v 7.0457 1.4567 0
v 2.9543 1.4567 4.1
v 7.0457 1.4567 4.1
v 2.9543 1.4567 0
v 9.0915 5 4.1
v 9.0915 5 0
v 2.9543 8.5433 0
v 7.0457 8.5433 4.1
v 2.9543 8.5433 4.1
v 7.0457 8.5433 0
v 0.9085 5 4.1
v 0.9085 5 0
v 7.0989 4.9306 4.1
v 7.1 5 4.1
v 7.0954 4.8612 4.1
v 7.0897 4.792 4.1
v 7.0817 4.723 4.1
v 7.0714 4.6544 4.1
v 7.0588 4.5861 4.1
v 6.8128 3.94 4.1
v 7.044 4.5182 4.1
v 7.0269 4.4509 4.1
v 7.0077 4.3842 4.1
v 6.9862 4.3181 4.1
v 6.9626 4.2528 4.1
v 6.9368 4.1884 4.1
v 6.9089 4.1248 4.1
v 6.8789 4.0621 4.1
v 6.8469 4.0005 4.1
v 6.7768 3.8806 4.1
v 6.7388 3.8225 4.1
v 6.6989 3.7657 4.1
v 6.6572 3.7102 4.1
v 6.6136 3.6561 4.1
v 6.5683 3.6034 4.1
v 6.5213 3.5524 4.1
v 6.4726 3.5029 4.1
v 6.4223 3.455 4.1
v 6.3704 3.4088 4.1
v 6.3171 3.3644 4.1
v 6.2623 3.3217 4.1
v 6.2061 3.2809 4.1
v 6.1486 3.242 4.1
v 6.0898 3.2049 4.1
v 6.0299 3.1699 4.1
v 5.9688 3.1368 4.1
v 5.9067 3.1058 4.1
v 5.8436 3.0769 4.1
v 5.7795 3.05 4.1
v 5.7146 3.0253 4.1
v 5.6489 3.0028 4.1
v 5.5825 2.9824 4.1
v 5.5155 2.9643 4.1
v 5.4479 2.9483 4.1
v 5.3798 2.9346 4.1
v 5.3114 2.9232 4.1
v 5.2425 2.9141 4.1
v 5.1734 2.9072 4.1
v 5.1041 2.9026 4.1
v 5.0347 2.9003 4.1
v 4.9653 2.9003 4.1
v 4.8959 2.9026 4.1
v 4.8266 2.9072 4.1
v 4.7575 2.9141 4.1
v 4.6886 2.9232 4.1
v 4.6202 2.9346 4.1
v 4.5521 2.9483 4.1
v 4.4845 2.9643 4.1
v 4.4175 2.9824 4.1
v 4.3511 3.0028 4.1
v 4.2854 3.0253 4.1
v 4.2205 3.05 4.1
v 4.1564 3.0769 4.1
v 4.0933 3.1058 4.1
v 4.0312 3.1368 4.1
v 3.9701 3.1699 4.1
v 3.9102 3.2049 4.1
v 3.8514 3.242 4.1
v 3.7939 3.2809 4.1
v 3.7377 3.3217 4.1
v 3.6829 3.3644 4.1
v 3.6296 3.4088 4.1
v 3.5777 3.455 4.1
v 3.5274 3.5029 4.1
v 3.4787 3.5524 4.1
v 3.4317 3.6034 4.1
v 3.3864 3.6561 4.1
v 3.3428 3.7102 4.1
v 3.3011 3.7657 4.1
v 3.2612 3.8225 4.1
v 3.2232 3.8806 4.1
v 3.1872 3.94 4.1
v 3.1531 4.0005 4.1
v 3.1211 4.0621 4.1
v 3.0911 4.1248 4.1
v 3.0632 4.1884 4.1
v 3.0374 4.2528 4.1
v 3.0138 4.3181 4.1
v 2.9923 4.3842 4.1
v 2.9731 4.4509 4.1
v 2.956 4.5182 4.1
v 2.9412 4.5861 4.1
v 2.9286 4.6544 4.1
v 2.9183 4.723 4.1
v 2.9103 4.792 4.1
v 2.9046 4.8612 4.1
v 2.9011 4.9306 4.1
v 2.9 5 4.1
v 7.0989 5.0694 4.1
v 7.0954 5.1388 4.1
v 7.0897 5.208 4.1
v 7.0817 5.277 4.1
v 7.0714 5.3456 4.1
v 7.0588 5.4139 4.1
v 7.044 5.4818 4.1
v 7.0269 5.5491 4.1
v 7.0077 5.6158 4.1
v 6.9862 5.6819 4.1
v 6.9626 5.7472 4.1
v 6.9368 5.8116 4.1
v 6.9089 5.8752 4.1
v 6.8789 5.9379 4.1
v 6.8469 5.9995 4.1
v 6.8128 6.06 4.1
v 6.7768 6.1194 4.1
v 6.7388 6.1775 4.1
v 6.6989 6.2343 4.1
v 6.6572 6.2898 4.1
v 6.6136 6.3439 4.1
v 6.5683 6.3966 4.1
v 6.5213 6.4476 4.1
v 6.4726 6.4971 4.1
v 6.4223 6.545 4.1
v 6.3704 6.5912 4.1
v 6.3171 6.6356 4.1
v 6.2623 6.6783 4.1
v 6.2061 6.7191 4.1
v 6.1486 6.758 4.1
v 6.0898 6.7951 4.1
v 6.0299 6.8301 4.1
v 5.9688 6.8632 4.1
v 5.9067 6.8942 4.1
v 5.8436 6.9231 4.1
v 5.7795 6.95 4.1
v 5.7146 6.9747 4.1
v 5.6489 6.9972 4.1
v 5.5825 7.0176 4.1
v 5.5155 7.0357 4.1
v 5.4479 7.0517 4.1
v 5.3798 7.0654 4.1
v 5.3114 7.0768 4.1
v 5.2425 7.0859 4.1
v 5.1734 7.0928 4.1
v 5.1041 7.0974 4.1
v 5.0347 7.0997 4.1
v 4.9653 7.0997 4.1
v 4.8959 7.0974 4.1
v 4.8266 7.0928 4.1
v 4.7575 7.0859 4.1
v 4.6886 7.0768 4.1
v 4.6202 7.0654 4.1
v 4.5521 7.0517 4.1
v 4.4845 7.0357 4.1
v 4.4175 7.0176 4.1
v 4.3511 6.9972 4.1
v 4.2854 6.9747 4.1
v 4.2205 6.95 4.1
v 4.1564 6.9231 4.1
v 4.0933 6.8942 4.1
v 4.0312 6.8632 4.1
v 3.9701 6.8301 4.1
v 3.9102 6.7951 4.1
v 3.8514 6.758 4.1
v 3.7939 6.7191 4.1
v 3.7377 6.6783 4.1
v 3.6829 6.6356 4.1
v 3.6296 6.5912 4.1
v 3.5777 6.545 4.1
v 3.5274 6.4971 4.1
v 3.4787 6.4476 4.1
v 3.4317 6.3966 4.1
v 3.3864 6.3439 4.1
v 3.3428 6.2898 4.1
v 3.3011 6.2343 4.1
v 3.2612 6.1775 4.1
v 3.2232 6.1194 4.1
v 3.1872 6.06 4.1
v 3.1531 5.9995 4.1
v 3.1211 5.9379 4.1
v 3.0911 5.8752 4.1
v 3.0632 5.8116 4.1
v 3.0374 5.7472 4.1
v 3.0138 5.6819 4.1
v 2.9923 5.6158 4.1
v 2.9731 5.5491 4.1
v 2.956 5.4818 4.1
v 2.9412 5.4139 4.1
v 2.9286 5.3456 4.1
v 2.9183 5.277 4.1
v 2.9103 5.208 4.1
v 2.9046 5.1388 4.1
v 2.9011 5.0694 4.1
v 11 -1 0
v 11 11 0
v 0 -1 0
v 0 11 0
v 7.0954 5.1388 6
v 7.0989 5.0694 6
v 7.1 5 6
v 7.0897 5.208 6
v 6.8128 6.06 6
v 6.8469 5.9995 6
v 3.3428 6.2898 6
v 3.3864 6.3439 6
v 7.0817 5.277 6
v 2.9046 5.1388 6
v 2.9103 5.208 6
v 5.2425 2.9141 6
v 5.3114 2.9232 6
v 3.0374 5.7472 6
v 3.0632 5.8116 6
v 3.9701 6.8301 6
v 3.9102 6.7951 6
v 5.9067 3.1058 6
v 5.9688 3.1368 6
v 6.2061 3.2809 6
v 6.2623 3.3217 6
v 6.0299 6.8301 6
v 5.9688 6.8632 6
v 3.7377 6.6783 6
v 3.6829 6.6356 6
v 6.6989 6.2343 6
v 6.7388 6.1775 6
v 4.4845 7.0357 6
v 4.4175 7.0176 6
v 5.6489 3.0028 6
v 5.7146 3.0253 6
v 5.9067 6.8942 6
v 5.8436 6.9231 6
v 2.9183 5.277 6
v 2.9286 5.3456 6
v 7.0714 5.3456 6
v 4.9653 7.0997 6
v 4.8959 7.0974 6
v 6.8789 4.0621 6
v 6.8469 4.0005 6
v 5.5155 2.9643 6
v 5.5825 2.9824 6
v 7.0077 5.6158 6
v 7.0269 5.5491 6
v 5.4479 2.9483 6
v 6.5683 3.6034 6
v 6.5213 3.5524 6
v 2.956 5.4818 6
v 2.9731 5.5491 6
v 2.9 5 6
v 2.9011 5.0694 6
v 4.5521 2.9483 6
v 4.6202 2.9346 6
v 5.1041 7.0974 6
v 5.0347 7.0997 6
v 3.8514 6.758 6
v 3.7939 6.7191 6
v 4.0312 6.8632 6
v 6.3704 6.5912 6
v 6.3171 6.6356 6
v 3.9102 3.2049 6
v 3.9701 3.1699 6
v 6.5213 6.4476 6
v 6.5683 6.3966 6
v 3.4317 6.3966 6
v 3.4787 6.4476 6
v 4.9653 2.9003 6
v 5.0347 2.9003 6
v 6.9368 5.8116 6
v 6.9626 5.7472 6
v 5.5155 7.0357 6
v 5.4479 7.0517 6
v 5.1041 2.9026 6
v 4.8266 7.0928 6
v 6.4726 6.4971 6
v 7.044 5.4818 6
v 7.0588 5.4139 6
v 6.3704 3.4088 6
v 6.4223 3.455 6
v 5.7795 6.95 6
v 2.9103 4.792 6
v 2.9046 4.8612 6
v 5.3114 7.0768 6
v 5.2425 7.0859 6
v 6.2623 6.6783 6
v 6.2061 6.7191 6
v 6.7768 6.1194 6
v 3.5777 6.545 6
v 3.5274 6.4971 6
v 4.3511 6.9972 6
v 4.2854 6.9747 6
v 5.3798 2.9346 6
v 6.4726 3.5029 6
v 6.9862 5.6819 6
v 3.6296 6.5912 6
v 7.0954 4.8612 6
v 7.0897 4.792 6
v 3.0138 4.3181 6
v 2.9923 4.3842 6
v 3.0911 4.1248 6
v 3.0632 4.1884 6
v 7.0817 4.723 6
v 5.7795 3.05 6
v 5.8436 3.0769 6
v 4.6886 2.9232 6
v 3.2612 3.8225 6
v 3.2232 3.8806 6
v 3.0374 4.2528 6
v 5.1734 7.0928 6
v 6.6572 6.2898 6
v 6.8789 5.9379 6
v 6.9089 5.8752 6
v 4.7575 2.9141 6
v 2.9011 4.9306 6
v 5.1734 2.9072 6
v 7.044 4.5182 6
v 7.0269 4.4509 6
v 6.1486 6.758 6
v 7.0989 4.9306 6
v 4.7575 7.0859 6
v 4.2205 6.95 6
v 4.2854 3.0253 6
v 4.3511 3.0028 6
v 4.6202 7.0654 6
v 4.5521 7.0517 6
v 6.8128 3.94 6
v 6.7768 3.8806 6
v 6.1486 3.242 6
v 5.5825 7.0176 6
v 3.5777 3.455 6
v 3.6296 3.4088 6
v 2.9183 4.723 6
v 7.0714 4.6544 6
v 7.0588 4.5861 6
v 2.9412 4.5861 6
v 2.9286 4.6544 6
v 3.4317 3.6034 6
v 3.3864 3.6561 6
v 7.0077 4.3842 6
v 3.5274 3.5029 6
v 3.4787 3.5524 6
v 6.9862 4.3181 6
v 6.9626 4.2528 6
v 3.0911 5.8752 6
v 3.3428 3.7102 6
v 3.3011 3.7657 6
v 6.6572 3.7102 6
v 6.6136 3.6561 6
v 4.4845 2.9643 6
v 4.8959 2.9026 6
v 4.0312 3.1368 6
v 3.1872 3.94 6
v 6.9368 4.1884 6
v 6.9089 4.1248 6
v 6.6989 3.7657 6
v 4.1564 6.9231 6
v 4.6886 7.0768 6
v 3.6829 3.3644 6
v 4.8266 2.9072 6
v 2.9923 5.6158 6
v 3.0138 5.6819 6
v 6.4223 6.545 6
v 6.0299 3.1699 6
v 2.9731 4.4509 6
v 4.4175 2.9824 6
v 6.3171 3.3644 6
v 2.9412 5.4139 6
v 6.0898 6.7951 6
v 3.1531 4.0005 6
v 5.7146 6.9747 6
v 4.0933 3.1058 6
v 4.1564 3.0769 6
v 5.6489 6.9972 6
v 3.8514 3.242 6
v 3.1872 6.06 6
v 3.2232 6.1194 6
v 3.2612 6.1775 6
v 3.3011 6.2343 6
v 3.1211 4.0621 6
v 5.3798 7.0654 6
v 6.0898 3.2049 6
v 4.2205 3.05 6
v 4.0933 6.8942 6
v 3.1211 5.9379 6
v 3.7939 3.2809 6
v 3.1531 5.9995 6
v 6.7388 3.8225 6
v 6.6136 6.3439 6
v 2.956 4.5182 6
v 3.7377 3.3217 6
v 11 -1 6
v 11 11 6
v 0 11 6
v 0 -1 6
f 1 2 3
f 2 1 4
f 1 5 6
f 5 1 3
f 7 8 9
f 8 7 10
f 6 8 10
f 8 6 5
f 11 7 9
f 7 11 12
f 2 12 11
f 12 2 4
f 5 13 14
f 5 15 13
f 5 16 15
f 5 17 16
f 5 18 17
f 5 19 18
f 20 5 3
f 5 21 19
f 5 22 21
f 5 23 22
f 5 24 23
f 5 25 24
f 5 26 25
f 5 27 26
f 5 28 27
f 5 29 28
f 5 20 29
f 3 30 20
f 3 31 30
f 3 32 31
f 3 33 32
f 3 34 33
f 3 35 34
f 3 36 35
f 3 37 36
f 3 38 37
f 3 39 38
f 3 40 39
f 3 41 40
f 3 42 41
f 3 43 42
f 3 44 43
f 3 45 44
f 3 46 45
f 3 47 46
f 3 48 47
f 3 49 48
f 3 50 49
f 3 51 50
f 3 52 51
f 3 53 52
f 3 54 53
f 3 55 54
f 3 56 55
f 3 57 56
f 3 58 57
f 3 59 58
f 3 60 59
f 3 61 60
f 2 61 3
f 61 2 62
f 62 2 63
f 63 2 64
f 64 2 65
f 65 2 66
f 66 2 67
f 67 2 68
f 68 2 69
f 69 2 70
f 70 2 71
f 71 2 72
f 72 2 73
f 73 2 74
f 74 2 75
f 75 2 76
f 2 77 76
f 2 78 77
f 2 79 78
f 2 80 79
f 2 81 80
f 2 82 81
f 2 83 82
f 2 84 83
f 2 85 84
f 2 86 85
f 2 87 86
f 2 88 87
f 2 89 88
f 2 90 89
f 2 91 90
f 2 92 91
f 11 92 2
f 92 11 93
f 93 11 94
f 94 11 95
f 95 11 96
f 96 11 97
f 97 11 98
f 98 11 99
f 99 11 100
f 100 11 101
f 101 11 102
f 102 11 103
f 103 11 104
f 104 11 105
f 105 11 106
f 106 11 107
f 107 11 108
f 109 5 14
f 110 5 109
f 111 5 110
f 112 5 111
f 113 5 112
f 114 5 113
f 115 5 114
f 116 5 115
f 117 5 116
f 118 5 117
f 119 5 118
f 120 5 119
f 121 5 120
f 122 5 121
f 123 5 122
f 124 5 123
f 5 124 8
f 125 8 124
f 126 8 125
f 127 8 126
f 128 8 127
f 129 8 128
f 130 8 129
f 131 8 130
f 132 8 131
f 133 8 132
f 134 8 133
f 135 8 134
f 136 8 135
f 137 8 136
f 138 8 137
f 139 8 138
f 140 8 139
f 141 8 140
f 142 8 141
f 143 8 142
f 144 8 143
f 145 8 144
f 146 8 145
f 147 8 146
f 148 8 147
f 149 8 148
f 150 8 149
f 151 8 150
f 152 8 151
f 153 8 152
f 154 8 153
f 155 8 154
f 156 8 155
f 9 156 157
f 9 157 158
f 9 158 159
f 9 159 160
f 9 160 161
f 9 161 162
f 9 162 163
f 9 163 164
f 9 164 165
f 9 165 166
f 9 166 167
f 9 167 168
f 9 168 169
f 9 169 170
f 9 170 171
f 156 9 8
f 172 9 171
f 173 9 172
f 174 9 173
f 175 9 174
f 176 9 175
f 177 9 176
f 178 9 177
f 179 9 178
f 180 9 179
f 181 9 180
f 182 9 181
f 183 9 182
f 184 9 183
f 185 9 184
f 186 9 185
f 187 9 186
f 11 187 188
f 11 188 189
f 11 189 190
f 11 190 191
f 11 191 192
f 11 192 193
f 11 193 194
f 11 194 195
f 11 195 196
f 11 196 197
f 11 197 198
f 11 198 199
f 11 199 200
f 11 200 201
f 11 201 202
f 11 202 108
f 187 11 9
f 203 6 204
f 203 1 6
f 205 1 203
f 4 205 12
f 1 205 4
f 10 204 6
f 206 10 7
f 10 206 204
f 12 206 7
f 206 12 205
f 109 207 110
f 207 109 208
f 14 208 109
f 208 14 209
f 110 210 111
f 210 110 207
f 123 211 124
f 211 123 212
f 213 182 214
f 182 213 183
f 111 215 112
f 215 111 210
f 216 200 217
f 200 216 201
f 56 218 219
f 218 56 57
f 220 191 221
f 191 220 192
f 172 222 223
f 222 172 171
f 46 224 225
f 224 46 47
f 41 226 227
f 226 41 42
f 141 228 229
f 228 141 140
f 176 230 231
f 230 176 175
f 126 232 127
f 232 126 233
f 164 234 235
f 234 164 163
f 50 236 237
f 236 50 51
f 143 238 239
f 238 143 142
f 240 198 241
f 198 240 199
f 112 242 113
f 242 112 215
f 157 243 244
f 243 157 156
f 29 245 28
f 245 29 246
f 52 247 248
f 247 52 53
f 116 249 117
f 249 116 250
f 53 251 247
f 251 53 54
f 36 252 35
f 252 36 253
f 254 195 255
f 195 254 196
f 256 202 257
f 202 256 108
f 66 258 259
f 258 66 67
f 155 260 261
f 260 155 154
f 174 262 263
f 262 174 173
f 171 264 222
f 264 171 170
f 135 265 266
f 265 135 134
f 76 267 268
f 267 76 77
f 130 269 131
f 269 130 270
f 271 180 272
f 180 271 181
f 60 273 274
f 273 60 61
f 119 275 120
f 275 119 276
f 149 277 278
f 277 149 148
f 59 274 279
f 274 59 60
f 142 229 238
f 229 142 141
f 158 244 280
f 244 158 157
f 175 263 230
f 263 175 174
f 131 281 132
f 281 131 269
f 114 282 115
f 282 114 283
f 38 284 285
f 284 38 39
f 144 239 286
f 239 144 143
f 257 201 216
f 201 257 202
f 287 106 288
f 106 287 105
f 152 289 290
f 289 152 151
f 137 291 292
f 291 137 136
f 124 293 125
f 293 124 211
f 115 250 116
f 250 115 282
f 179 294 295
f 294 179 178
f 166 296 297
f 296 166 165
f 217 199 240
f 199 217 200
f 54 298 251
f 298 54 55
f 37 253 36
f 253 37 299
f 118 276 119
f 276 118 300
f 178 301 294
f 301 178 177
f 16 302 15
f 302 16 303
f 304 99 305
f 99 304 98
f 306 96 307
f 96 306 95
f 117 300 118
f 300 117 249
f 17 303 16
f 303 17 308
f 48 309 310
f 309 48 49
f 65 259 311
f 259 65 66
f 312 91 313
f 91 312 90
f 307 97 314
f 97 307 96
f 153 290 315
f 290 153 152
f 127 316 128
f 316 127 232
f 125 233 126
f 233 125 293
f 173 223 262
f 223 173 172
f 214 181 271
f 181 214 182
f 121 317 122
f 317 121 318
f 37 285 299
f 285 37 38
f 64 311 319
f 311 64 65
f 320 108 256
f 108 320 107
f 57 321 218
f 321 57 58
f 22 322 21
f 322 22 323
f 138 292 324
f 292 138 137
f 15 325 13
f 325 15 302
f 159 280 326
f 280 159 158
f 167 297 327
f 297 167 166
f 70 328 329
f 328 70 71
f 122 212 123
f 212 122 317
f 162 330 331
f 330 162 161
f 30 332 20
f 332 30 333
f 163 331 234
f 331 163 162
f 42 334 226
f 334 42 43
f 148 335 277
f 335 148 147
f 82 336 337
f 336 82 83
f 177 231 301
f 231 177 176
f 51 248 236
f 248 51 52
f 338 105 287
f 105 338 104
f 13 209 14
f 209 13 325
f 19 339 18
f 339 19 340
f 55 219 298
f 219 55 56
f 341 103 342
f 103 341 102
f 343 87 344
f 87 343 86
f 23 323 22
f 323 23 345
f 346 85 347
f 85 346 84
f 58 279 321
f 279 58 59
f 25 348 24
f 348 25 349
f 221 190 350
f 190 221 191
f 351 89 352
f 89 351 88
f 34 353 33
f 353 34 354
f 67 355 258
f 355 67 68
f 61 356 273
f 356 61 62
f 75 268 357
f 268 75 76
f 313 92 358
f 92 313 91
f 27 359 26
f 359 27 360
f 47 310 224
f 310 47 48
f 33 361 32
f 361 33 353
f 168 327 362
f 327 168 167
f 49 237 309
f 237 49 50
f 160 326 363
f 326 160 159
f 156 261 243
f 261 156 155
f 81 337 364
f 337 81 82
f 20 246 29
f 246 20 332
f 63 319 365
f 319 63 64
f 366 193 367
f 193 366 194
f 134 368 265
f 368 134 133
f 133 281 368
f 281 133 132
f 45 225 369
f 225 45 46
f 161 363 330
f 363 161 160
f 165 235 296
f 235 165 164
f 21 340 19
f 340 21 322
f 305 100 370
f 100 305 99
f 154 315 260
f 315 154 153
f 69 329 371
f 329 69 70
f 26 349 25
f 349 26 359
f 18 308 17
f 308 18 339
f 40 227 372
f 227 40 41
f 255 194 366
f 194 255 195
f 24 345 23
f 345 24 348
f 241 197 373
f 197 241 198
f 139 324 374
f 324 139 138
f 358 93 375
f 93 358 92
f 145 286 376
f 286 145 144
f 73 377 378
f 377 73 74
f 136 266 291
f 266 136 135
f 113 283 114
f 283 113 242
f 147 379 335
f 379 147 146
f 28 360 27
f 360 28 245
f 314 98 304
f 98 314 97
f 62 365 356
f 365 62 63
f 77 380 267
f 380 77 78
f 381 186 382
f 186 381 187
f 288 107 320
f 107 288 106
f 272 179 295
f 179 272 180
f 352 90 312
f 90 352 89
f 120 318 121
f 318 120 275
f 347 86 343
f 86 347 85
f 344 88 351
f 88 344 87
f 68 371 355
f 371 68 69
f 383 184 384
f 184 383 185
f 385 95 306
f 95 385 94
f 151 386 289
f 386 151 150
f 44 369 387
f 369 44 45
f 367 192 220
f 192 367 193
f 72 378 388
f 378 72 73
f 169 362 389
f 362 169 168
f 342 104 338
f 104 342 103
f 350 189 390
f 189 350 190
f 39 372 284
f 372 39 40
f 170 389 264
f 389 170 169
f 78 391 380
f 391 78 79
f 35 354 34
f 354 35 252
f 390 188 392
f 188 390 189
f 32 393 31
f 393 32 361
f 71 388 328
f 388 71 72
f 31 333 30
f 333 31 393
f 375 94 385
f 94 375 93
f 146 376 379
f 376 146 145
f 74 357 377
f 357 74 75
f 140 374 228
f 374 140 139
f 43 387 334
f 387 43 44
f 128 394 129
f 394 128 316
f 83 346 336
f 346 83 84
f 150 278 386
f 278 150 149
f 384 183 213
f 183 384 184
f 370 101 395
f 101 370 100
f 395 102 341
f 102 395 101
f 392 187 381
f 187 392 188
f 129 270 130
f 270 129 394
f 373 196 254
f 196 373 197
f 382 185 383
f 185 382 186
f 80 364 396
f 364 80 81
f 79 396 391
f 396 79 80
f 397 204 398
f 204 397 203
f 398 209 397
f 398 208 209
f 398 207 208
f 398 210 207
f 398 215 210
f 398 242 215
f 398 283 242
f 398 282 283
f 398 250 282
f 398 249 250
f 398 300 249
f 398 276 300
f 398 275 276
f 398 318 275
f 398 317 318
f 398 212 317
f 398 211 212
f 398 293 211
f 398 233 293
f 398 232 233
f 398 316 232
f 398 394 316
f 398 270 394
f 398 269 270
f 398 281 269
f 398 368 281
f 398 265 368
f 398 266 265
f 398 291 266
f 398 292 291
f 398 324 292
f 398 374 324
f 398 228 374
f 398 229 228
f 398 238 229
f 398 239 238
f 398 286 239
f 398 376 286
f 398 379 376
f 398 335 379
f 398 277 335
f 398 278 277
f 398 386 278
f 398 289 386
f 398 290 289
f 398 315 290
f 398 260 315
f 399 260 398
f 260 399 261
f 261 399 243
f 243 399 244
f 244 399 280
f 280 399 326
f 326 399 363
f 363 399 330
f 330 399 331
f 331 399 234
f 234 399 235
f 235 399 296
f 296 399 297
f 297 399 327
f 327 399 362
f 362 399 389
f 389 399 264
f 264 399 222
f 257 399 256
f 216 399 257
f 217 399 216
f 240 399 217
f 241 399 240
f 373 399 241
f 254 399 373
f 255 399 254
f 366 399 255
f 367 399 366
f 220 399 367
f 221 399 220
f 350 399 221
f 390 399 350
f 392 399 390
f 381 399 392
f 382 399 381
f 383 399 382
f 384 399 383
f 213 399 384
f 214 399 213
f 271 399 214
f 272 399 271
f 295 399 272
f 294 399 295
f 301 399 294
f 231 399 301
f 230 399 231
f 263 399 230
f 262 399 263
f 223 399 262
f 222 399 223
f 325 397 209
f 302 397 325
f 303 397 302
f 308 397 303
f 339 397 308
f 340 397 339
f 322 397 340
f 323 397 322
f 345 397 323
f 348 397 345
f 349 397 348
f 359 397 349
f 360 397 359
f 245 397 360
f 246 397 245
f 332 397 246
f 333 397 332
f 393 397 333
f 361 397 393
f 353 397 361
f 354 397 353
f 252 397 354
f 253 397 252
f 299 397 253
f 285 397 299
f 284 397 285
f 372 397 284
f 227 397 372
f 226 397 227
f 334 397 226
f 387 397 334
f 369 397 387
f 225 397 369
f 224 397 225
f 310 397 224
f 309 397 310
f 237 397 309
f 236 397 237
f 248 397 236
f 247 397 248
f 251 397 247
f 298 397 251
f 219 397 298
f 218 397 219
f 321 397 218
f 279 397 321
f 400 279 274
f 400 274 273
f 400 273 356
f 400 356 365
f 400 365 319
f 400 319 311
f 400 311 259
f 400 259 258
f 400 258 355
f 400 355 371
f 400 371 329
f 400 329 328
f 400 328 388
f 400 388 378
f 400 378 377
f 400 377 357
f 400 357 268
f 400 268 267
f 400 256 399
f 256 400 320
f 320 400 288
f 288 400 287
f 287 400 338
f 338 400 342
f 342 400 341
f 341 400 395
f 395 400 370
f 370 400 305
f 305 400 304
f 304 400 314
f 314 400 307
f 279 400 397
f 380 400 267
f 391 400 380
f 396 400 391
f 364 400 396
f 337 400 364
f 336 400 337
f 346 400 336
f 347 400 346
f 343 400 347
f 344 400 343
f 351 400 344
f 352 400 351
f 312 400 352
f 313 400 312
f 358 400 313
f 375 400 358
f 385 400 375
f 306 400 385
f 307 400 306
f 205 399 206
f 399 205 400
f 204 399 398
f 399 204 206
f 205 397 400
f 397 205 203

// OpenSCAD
difference() {
    translate([0, -1, 0]) cube([11, 12, 6]);
    translate([5,5, 0]) {
        cylinder(r = 7 / 2 / cos(180 / 6) + 0.05, h=4.1, $fn=6);
        cylinder(d=4.2, h=20, $fn=190);
    }
}
